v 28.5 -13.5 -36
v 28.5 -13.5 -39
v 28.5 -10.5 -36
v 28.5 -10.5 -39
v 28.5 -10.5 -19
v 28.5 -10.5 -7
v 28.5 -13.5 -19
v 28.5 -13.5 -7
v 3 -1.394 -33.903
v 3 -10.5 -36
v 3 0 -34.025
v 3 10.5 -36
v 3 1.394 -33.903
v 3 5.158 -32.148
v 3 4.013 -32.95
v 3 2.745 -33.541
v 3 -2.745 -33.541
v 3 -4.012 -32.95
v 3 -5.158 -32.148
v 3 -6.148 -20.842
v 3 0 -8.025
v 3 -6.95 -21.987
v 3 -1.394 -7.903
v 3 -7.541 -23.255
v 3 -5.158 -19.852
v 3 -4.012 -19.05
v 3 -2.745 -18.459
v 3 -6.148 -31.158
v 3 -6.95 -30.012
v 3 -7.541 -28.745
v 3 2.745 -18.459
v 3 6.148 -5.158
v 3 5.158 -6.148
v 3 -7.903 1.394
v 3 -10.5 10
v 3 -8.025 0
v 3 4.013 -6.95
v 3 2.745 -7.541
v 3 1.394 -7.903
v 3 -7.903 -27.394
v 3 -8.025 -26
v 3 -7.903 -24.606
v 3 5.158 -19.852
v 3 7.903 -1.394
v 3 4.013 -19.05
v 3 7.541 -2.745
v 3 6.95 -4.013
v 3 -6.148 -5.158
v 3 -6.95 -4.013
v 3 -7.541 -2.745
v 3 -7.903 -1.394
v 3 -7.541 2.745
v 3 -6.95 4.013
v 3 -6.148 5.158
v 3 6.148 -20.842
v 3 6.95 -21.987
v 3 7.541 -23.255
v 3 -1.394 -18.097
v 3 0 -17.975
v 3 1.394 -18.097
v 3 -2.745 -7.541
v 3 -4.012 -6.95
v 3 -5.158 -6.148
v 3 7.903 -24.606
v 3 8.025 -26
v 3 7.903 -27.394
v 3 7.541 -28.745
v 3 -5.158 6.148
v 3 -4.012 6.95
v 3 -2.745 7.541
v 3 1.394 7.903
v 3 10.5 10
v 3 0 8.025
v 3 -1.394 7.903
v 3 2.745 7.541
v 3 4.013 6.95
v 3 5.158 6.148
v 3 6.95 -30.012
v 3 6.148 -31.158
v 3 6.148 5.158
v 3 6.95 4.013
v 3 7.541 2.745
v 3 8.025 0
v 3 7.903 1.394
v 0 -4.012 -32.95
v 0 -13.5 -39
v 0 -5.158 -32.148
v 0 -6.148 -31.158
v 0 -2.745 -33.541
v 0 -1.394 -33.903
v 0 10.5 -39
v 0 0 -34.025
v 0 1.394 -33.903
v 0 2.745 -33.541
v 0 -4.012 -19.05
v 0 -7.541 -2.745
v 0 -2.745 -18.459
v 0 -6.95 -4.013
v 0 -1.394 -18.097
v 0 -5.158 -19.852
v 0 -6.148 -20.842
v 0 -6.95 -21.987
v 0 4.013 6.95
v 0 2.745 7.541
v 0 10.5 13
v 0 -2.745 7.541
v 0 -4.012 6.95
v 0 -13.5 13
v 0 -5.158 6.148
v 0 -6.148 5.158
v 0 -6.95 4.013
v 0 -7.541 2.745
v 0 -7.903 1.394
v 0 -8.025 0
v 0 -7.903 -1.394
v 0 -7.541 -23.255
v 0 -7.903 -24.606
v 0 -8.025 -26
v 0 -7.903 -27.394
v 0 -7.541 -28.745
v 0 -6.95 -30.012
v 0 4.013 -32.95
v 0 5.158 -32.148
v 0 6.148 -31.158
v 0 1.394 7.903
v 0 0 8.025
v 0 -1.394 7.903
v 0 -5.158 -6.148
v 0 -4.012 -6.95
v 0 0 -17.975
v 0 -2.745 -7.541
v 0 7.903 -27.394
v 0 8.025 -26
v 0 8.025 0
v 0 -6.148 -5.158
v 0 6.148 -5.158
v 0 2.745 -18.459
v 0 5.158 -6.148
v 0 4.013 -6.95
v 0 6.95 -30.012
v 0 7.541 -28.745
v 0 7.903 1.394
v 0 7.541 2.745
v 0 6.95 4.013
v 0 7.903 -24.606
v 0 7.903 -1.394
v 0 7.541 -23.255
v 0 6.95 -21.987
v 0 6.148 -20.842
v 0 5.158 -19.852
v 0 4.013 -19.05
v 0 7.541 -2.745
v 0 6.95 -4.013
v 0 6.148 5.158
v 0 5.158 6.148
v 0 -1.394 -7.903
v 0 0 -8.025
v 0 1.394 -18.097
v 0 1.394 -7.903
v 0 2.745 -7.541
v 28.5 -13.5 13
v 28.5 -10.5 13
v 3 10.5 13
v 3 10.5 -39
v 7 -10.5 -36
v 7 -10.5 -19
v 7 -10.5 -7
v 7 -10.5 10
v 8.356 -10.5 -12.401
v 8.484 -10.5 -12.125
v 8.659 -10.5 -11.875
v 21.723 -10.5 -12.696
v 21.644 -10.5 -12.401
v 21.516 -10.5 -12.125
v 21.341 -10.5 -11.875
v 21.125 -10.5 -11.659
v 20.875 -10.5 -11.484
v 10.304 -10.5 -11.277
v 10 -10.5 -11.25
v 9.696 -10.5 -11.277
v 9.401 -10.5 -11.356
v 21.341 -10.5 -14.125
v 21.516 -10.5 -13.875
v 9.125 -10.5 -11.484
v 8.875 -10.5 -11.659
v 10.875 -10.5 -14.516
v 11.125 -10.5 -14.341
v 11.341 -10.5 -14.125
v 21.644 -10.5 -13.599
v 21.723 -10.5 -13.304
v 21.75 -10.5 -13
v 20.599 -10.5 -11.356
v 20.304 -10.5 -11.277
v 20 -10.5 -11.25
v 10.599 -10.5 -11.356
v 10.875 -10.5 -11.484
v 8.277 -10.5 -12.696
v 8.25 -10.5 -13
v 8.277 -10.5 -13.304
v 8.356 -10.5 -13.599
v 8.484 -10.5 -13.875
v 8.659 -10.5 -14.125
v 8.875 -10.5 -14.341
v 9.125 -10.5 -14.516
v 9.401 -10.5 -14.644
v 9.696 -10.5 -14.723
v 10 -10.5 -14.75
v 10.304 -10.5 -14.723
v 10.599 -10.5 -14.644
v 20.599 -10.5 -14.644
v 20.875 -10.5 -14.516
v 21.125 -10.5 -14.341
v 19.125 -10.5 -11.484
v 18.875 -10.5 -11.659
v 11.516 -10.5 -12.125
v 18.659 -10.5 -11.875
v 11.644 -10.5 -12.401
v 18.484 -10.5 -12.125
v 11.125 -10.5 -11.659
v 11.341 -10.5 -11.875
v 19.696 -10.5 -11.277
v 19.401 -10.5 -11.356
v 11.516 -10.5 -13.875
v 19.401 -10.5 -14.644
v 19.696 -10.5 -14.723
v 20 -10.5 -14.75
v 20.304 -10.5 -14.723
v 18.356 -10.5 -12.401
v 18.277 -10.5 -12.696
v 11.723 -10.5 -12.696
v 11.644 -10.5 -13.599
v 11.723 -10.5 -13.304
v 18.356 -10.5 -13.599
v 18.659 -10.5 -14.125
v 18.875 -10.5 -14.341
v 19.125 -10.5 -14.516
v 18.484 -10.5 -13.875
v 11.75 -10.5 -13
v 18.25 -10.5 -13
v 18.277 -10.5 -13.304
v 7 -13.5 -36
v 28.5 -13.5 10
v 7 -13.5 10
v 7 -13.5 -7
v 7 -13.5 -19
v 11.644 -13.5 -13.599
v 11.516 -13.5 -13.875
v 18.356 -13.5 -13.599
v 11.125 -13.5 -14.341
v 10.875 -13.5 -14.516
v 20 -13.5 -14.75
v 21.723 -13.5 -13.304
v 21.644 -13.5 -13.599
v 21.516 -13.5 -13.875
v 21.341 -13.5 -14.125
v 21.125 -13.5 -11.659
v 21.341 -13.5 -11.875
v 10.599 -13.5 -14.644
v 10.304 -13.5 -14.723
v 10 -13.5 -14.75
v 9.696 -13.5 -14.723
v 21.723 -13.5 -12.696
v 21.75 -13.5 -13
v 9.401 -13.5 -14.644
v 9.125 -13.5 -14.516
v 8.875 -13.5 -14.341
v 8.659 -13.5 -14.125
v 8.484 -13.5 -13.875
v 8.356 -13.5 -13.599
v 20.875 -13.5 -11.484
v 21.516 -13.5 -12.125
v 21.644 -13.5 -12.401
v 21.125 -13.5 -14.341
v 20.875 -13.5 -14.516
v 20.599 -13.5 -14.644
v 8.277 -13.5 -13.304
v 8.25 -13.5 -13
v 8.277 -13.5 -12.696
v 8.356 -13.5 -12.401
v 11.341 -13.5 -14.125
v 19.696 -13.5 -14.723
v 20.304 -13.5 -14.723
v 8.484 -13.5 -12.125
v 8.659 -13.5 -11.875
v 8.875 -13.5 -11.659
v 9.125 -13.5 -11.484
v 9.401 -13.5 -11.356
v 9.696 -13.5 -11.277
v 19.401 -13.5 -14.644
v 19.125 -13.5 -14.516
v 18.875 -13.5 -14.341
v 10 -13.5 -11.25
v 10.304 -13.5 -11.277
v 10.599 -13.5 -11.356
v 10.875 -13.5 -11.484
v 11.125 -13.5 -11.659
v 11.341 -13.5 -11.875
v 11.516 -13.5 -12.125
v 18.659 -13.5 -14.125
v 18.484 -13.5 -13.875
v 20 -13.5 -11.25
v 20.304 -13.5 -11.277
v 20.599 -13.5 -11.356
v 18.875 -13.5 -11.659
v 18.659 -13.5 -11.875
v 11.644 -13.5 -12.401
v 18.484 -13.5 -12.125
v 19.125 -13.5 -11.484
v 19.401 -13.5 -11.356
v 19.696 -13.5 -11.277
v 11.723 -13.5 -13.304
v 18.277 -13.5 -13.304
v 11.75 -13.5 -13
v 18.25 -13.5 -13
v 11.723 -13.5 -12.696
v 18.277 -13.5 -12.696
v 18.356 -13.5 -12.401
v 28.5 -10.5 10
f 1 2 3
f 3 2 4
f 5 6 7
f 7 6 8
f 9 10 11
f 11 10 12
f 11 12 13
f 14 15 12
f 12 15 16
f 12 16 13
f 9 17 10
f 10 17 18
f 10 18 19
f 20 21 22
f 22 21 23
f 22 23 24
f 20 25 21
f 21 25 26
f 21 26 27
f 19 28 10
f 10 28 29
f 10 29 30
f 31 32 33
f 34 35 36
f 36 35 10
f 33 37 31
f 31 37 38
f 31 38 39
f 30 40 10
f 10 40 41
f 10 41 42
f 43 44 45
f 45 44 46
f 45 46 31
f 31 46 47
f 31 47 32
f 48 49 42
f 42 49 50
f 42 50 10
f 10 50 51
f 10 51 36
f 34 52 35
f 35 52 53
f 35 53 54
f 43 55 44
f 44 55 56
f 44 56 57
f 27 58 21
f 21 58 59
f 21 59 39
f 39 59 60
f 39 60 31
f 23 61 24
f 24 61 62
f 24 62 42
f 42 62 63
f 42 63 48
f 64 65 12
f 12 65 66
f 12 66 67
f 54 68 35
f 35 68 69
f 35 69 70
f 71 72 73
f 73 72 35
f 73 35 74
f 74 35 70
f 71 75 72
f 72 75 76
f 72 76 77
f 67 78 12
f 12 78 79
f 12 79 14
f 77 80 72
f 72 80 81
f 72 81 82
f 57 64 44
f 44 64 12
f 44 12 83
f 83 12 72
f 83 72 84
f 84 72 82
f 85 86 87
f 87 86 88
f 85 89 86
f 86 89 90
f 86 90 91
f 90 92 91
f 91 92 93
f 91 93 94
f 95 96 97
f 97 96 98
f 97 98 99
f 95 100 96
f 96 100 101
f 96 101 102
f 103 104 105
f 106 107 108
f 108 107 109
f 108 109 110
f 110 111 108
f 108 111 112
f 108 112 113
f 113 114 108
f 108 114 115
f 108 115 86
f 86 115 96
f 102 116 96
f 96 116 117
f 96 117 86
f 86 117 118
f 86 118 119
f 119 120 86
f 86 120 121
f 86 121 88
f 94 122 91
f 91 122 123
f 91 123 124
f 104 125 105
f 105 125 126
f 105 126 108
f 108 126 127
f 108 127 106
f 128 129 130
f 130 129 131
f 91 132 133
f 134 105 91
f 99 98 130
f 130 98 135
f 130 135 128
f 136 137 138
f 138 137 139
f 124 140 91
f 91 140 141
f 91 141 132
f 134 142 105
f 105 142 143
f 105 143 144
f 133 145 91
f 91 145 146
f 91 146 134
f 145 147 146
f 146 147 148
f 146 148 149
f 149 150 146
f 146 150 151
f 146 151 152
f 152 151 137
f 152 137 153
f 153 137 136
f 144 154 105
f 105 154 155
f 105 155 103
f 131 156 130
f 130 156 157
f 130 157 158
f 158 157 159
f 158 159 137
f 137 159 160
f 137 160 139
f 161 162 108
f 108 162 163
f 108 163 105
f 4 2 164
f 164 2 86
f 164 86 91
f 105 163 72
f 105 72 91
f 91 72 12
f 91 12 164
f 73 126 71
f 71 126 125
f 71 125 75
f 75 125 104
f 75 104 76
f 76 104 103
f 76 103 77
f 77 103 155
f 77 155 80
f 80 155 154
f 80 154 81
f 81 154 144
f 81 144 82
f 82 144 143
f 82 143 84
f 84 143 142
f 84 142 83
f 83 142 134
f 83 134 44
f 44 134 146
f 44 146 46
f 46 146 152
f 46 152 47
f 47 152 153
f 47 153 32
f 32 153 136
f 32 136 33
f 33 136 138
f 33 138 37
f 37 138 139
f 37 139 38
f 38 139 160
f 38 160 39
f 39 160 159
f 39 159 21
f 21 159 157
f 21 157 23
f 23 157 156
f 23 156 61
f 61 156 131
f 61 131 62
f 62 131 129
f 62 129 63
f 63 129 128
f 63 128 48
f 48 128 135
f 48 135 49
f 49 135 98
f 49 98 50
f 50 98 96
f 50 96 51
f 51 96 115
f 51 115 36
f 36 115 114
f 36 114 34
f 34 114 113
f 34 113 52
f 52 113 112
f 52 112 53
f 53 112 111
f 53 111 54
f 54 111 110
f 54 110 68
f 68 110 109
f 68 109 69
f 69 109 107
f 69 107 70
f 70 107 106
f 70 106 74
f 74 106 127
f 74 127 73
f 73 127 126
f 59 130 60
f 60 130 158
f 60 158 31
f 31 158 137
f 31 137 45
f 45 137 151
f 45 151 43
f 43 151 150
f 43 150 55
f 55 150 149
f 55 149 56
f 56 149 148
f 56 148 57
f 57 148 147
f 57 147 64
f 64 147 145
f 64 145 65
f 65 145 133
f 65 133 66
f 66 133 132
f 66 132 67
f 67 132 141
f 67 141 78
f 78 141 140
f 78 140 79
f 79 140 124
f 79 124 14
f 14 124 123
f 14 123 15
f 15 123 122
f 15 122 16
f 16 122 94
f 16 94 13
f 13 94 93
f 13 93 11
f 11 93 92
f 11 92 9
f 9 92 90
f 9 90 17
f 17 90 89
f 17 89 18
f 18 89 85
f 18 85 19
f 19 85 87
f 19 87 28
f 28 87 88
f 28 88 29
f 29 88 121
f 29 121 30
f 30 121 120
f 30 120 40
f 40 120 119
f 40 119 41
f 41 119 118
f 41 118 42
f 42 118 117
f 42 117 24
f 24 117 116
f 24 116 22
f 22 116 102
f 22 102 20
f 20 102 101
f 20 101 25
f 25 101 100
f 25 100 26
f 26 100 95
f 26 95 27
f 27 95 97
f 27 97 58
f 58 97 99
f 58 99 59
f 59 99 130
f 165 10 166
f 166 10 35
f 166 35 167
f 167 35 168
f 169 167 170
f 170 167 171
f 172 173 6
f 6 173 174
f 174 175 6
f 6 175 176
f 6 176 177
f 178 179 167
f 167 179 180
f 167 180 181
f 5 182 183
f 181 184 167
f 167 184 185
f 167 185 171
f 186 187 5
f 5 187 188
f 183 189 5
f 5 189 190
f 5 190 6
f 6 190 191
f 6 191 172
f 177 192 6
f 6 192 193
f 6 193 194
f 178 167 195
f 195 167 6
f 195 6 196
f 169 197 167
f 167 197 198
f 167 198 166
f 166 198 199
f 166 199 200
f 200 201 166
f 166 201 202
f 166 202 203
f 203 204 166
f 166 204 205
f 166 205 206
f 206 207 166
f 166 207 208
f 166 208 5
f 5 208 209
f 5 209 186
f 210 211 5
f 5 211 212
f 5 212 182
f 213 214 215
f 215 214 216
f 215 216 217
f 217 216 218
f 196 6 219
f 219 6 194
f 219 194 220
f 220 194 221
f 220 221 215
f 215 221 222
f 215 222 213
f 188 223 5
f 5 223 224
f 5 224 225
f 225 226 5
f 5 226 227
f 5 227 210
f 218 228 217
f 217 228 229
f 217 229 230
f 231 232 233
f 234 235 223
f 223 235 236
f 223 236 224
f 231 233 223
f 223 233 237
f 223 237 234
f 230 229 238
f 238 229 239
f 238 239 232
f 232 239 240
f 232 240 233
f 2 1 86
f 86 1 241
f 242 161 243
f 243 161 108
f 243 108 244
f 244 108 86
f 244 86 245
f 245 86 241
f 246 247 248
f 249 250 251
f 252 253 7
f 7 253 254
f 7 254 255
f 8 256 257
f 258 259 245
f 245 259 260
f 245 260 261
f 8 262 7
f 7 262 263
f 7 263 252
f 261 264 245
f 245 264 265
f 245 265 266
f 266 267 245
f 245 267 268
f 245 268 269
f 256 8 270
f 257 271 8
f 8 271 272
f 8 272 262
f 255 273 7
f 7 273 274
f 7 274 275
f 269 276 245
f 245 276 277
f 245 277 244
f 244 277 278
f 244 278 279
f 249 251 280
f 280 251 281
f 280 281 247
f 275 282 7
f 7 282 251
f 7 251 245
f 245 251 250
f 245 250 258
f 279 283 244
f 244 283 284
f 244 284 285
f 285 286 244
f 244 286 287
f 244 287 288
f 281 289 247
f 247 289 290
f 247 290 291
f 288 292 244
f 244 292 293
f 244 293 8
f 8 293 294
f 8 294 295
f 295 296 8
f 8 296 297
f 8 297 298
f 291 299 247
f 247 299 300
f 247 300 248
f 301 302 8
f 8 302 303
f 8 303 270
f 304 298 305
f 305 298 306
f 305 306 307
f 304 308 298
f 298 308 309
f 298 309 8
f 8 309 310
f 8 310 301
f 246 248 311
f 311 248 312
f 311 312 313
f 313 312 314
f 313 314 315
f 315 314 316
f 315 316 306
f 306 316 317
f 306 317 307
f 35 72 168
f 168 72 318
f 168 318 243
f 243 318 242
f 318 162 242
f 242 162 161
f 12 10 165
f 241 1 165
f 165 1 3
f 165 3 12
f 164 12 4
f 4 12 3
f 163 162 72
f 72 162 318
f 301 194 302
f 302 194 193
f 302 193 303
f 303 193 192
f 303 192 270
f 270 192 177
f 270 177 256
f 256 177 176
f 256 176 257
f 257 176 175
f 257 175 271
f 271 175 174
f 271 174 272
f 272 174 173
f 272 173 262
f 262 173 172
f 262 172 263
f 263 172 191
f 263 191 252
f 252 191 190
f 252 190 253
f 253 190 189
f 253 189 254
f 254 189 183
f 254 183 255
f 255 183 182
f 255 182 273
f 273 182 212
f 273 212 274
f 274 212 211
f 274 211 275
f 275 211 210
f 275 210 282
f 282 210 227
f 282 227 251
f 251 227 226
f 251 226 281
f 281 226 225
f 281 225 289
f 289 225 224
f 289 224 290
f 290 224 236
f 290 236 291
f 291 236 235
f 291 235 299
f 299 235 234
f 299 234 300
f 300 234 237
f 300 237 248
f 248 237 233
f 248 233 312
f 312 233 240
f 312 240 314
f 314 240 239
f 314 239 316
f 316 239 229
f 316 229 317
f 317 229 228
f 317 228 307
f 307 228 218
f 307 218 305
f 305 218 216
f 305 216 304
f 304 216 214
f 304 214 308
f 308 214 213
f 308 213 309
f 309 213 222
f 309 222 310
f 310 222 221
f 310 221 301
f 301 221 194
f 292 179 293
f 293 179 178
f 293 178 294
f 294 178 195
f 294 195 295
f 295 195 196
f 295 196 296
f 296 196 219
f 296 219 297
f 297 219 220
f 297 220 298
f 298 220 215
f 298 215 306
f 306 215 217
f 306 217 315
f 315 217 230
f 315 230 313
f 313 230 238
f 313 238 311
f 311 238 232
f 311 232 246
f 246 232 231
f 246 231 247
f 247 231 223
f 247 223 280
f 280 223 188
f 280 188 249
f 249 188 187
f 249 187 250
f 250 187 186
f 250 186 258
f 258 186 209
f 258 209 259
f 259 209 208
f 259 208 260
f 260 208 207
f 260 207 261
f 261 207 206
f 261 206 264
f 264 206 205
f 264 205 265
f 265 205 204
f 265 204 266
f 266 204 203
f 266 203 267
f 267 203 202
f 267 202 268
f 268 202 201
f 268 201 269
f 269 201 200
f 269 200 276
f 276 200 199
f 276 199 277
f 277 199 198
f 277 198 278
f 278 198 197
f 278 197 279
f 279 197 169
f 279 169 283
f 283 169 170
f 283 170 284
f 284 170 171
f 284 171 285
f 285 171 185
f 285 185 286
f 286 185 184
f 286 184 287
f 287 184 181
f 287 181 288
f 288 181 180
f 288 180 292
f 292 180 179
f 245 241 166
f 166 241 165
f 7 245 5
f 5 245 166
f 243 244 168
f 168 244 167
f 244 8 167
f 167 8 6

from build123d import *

# Parameters (mm, degrees)
CROQUIS1_W              = 52
CROQUIS1_H              = 21
CROQUIS1_R              = 8.025
SALIENTE_EXTRUIR1_DEPTH = 3
CROQUIS2_W              = 3
CROQUIS2_H              = 21
SALIENTE_EXTRUIR2_DEPTH = 28.5
CORTAR_EXTRUIR1_DEPTH   = 61.815294129
CROQUIS4_R              = 1.75
CORTAR_EXTRUIR2_DEPTH   = 53.671149598
CROQUIS5_W              = 21.5
CROQUIS5_H              = 17
CORTAR_EXTRUIR3_DEPTH   = 53.671149598


with BuildPart() as part:
    # Croquis1 → Saliente-Extruir1 (new body)
    with BuildSketch(Plane(origin=(0, 0, 0), x_dir=(0, 0, -1), z_dir=(1, 0, 0))):
        with Locations((13, 0)):
            Rectangle(CROQUIS1_W, CROQUIS1_H)
        Circle(CROQUIS1_R, mode=Mode.SUBTRACT)
        with Locations((26, 0)):
            Circle(CROQUIS1_R, mode=Mode.SUBTRACT)
    extrude(amount=SALIENTE_EXTRUIR1_DEPTH)

    # Croquis2 → Saliente-Extruir2 (add)
    with BuildSketch(Plane.ZY):
        Polygon((-36, -10.5), (-39, -10.5), (-39, -13.5), (13, -13.5), (13, -10.5), (10, -10.5), align=None)
        with Locations((11.5, 0)):
            Rectangle(CROQUIS2_W, CROQUIS2_H)
        with Locations((-37.5, 0)):
            Rectangle(CROQUIS2_W, CROQUIS2_H)
    extrude(amount=-SALIENTE_EXTRUIR2_DEPTH)

    # Croquis3 → Cortar-Extruir1 (cut, through all)
    with BuildSketch(Plane.XY.offset(13)):
        Polygon((3, 10.5), (28.5, -10.5), (28.5, 10.5), align=None)
    extrude(amount=-CORTAR_EXTRUIR1_DEPTH, mode=Mode.SUBTRACT)

    # Croquis4 → Cortar-Extruir2 (cut, through all)
    with BuildSketch(Plane(origin=(0, -10.5, 0), x_dir=(1, 0, 0), z_dir=(0, 1, 0))):
        with Locations(Location((10, 13, 0), (0, 0, 270))):
            Circle(CROQUIS4_R)
        with Locations(Location((20, 13, 0), (0, 0, 270))):
            Circle(CROQUIS4_R)
    extrude(amount=-CORTAR_EXTRUIR2_DEPTH, mode=Mode.SUBTRACT)

    # Croquis5 → Cortar-Extruir3 (cut, through all)
    with BuildSketch(Plane(origin=(0, -10.5, 0), x_dir=(1, 0, 0), z_dir=(0, 1, 0))):
        with Locations((17.75, 27.5)):
            Rectangle(CROQUIS5_W, CROQUIS5_H)
        with Locations((17.75, -1.5)):
            Rectangle(CROQUIS5_W, CROQUIS5_H)
    extrude(amount=-CORTAR_EXTRUIR3_DEPTH, mode=Mode.SUBTRACT)


solid = part.part
